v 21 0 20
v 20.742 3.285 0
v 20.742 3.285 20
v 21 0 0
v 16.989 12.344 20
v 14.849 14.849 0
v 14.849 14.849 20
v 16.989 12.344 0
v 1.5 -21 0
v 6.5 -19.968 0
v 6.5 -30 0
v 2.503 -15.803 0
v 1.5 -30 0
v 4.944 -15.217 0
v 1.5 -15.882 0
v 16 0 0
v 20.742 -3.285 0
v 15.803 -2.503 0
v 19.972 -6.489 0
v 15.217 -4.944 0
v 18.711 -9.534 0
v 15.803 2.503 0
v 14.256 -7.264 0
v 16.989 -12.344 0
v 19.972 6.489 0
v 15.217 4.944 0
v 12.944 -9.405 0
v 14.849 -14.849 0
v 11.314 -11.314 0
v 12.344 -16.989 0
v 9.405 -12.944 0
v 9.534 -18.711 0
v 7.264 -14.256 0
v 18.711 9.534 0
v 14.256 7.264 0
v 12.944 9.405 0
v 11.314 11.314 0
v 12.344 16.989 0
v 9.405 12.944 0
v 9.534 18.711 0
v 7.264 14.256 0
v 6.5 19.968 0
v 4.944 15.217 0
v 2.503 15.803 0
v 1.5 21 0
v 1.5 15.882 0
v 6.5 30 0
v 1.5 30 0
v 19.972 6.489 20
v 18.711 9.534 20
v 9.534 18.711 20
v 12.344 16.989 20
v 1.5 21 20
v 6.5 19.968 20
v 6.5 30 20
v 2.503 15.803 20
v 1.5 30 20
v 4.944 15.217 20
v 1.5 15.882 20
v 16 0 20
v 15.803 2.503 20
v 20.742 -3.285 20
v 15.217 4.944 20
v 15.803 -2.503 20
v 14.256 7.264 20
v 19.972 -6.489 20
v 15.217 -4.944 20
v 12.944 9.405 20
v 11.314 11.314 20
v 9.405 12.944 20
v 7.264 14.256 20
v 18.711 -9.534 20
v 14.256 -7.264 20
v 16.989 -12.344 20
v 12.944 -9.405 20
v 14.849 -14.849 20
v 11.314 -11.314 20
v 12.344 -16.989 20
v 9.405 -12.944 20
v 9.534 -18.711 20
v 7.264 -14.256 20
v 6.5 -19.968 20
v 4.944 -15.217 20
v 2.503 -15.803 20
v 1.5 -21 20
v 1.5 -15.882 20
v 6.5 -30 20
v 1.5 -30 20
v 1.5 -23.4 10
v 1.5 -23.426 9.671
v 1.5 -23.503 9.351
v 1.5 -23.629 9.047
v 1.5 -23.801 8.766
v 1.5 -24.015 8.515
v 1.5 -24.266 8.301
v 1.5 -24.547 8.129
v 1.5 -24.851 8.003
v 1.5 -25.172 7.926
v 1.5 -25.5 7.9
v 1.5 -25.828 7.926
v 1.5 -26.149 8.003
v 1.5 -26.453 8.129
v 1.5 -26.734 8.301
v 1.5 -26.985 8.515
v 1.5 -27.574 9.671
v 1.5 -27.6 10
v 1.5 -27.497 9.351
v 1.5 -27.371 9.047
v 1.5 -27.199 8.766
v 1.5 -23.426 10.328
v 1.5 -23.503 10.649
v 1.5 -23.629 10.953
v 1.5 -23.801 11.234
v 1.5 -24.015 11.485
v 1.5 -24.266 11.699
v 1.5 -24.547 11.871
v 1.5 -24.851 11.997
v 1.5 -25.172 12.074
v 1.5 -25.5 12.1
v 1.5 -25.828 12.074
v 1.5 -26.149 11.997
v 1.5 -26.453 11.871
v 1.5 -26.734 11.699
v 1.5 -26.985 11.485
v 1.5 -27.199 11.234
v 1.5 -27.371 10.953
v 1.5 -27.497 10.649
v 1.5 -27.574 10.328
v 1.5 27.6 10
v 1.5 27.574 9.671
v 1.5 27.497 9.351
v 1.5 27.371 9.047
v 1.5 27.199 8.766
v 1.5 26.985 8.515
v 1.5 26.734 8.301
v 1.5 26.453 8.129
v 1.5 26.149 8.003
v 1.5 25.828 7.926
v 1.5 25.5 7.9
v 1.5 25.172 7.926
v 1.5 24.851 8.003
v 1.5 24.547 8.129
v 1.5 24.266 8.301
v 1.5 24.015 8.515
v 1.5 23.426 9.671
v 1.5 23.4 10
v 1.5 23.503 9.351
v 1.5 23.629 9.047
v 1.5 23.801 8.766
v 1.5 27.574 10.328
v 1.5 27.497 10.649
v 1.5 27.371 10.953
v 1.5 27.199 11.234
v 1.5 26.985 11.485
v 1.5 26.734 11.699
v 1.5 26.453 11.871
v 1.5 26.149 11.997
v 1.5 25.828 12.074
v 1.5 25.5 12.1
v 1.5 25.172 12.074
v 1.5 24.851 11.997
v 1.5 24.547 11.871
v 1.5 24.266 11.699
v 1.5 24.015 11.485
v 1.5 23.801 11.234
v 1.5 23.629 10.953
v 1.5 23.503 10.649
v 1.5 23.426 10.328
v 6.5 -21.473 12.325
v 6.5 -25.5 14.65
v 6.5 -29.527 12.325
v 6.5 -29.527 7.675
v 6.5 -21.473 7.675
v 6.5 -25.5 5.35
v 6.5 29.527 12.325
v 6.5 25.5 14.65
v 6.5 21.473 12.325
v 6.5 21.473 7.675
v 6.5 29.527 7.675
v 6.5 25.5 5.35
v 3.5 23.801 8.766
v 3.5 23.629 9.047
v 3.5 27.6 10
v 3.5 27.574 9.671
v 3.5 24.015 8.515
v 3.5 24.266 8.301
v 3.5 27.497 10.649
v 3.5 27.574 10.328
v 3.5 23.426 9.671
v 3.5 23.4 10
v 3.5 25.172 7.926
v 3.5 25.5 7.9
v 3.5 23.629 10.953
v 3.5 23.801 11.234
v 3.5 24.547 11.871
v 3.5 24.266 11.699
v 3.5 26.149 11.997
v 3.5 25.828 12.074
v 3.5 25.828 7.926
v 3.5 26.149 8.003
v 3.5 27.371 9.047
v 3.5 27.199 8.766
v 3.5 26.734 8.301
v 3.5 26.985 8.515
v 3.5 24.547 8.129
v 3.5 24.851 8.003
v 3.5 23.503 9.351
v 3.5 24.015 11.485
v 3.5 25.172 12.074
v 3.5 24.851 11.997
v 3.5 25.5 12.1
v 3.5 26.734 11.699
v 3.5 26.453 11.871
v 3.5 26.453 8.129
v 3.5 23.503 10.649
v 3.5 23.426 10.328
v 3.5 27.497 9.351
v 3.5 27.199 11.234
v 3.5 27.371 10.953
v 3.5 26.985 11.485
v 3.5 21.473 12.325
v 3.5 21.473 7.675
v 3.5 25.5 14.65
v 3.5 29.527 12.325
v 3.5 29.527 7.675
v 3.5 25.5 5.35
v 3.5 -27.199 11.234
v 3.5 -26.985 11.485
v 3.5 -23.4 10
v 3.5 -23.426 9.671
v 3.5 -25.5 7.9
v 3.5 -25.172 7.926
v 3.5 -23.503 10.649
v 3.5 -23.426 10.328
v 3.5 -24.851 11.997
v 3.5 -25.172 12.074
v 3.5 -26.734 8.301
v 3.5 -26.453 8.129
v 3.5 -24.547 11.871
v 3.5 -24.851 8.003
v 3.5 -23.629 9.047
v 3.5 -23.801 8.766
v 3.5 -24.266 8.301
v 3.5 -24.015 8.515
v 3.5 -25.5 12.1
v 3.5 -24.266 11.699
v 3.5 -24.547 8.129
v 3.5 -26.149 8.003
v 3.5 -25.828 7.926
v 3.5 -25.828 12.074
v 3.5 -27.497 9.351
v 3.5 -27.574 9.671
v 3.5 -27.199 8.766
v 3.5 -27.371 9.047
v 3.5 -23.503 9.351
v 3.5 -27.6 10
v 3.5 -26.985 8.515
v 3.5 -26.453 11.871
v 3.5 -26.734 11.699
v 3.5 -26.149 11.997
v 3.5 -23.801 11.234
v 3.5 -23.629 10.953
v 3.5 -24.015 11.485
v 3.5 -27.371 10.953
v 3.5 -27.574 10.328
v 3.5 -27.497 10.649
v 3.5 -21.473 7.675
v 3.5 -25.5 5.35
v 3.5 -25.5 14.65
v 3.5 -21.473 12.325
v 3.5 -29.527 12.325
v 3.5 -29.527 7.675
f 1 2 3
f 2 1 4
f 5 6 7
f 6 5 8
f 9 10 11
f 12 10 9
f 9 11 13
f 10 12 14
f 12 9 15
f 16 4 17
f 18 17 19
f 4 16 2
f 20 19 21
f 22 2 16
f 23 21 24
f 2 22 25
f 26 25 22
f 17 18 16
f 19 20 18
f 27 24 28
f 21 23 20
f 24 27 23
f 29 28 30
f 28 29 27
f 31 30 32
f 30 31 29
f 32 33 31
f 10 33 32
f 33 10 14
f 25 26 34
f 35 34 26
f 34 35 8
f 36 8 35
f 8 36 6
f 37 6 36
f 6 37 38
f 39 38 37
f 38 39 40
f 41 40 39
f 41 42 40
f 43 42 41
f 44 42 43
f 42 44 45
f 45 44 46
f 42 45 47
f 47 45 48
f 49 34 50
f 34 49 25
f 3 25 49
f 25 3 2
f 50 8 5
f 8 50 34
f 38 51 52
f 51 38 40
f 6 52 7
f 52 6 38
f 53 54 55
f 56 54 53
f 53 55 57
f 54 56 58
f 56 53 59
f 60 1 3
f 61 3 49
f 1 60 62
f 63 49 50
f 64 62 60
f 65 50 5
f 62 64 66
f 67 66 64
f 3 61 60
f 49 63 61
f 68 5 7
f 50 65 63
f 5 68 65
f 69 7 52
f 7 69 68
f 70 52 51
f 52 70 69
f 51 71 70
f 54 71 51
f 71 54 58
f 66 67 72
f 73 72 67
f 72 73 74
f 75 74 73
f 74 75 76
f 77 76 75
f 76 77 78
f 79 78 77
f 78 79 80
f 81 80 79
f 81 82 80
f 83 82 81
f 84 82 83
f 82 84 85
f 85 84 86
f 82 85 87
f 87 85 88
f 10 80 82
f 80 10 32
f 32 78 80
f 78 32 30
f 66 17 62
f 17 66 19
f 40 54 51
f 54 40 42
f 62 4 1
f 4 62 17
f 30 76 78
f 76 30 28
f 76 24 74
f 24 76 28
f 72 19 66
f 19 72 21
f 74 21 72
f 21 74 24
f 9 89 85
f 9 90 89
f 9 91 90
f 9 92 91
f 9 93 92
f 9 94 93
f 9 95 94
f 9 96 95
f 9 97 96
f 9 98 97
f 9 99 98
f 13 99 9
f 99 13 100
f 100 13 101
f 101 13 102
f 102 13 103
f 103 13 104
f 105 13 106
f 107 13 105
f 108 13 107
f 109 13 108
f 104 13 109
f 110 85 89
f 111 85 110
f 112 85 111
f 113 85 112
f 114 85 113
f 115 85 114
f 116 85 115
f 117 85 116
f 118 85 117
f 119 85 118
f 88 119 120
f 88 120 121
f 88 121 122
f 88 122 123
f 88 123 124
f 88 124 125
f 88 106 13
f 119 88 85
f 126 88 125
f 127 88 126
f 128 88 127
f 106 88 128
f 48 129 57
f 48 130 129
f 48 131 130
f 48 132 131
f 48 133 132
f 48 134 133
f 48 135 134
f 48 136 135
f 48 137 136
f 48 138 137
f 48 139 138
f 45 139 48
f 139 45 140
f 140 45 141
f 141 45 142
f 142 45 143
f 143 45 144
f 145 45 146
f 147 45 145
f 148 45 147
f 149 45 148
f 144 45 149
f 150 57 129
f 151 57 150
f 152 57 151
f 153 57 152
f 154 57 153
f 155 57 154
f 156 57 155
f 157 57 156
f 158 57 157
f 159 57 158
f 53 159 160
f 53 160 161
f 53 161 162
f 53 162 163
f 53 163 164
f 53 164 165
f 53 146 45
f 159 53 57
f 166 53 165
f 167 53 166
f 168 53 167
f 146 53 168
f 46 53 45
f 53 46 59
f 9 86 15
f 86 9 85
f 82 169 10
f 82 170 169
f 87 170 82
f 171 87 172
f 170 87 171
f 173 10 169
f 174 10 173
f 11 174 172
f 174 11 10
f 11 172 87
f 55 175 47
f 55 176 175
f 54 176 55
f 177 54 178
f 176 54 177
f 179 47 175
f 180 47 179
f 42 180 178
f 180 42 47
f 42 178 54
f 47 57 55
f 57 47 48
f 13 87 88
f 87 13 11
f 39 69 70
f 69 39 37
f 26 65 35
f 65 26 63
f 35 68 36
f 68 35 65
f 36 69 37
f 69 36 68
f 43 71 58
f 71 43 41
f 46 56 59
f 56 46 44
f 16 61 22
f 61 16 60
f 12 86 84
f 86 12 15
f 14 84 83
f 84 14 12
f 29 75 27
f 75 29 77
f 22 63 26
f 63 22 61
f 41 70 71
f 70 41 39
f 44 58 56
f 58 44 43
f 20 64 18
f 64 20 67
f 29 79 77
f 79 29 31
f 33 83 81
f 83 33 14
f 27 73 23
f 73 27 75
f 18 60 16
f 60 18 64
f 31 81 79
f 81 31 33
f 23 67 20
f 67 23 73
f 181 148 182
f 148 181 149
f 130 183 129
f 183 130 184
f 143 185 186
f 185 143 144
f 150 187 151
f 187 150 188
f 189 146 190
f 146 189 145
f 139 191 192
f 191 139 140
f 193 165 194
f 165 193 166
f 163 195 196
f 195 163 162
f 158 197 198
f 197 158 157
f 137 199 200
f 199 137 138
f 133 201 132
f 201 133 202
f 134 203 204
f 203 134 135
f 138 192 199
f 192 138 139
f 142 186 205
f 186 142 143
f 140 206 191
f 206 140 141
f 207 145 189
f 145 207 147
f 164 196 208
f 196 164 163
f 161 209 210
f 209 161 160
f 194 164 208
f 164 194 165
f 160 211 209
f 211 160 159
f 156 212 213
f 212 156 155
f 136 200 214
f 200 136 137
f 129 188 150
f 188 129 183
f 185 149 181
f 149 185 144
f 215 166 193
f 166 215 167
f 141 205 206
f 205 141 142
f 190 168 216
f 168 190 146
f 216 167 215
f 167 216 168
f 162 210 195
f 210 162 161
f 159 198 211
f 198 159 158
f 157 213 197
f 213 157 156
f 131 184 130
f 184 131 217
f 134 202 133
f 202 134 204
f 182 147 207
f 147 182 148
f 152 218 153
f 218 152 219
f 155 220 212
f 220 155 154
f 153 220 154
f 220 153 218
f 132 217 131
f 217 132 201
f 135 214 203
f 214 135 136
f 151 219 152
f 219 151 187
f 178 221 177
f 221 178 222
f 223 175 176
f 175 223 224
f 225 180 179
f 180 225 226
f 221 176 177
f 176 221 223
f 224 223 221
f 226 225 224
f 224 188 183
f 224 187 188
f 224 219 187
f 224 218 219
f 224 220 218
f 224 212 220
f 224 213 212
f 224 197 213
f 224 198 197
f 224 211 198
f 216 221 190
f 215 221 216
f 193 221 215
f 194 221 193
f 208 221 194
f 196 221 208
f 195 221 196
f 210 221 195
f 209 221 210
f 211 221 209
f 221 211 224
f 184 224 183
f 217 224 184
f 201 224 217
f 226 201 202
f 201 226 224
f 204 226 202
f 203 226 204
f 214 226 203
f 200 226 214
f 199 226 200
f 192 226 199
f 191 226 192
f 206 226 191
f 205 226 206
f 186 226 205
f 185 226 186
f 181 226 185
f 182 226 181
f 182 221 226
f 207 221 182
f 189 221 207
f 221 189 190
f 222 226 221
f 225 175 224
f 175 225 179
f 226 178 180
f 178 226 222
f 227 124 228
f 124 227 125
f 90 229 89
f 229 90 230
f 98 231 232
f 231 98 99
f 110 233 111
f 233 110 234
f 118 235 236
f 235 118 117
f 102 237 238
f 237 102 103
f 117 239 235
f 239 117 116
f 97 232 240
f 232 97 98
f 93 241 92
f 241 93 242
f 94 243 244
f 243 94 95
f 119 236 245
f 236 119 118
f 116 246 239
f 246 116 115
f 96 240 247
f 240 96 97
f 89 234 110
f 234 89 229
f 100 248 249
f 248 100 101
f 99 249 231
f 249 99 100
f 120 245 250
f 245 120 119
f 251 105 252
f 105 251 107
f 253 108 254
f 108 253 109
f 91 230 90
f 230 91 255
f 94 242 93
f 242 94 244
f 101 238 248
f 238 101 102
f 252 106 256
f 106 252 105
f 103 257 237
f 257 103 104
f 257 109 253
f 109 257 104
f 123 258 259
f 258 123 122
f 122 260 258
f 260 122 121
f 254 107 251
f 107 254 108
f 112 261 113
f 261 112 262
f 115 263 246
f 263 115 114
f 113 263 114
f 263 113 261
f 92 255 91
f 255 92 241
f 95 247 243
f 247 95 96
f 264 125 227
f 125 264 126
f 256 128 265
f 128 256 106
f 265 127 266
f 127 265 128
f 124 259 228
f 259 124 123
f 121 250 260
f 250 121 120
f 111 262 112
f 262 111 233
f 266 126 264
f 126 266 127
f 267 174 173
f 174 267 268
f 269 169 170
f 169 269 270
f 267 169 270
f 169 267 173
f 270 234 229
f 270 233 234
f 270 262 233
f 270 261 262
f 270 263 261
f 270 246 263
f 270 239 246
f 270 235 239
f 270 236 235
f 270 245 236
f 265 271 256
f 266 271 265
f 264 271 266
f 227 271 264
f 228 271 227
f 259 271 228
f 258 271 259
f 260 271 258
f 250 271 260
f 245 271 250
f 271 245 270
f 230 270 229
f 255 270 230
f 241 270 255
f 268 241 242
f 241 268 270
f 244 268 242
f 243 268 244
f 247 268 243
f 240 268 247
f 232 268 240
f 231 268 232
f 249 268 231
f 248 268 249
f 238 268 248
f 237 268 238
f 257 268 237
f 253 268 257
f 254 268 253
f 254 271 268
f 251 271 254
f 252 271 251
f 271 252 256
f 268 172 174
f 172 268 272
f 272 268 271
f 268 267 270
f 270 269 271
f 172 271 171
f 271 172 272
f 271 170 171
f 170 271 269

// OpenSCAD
// file: ../SRC/BOXHOLDER01A_D02.scad
$fn=40; // model faces resolution.
include <../configuration.scad>


//Drzak na sloup - cast bez drzaku anemometru
module BOXHOLDER01A_D02(){
	
difference()
    {
    union()
        {
        //základní válec
        cylinder(h=D02_vyska_uchytky,r=(D02_prumer_obruby+2*D02_sila_materialu)/2,center=true);
		//úchytové plošky		
        translate([D02_dotahova_vzdalenost+D02_sila_materialu/2,0,0]){cube([D02_sila_materialu,D02_delka_celeho_uchytu,D02_vyska_uchytky],center=true);}
		}
    
    //válec na odečet
    cylinder(h=D02_vyska_uchytky+0.01,r=D02_prumer_obruby/2,center=true);     
	        
    //kvádr na odecet
	translate([D02_dotahova_vzdalenost-(D02_prumer_obruby+2*D02_sila_materialu)/2,0,0]){cube([D02_prumer_obruby+2*D02_sila_materialu,D02_prumer_obruby+2*D02_sila_materialu,D02_vyska_uchytky+0.01],center=true);}
		
	//otvory na sroub
	translate([D02_dotahova_vzdalenost,(D02_delka_celeho_uchytu/2-D02_prumer_obruby/2-D02_sila_materialu)/2+D02_prumer_obruby/2+D02_sila_materialu,0]){rotate([0,90,0]){cylinder(h=D02_sila_materialu+0.01,r=D02_prumer_uchytneho_sroubu/2);}}
    
     //drzak matky
    translate([D02_dotahova_vzdalenost+D02_sila_materialu-D02_vyska_matky,(D02_delka_celeho_uchytu/2-D02_prumer_obruby/2-D02_sila_materialu)/2+D02_prumer_obruby/2+D02_sila_materialu,0]){rotate([0,90,0]){ cylinder (h = D02_vyska_matky+0.01, r= (D02_sirka_matky+0.2)/2, $fn=6);}}
   
     
        
    
        
	translate([D02_dotahova_vzdalenost,-((D02_delka_celeho_uchytu/2-D02_prumer_obruby/2-D02_sila_materialu)/2+D02_prumer_obruby/2+D02_sila_materialu),0]){rotate([0,90,0]){cylinder(h=D02_sila_materialu+0.01,r=D02_prumer_uchytneho_sroubu/2);}}
    
     //drzak matky
    translate([D02_dotahova_vzdalenost+D02_sila_materialu-D02_vyska_matky,-((D02_delka_celeho_uchytu/2-D02_prumer_obruby/2-D02_sila_materialu)/2+D02_prumer_obruby/2+D02_sila_materialu),0]){rotate([0,90,0]){ cylinder (h = D02_vyska_matky+0.01, r= (D02_sirka_matky+0.2)/2, $fn=6);}}

    
	
    }
}

module BOXHOLDER01A_D02_2(){
	
difference()
    {
    union()
        {
        //základní válec
        cylinder(h=D02_vyska_uchytky,r=(D02_prumer_obruby+2*D02_sila_materialu)/2,center=true);
		//úchytové plošky		
        translate([D02_dotahova_vzdalenost+D02_sila_materialu/2,0,0]){cube([D02_sila_materialu,D02_delka_celeho_uchytu,D02_vyska_uchytky],center=true);}
		}
    
    //válec na odečet
    cylinder(h=D02_vyska_uchytky+0.01,r=D02_prumer_obruby/2,center=true);     
	        
    //kvádr na odecet
	translate([D02_dotahova_vzdalenost-(D02_prumer_obruby+2*D02_sila_materialu)/2,0,0]){cube([D02_prumer_obruby+2*D02_sila_materialu,D02_prumer_obruby+2*D02_sila_materialu,D02_vyska_uchytky+0.01],center=true);}
		
	//otvory na sroub
	translate([D02_dotahova_vzdalenost,(D02_delka_celeho_uchytu/2-D02_prumer_obruby/2-D02_sila_materialu)/2+D02_prumer_obruby/2+D02_sila_materialu,0]){rotate([0,90,0]){cylinder(h=D02_sila_materialu+0.01,r=D02_prumer_uchytneho_sroubu/2);}}
    
    
   
     
        
   
    
     
        
	translate([D02_dotahova_vzdalenost,-((D02_delka_celeho_uchytu/2-D02_prumer_obruby/2-D02_sila_materialu)/2+D02_prumer_obruby/2+D02_sila_materialu),0]){rotate([0,90,0]){cylinder(h=D02_sila_materialu+0.01,r=D02_prumer_uchytneho_sroubu/2);}}
    
    

    
    
	
    }
}


//ISLHOLDER01A_D02();
// file: ../configuration.scad
$fn=40; // model faces resolution.

//Parametry pro D01 a D02
//nastavení držáku na sloup
//----------------------------------------------------------------
//----------------------------------------------------------------
//není potřeba měnit
S01_prumer_vnitrni=40;
S01_tolerance_zavit=1.5;

S01_sila_materialu=1.3; //sila výtuhy

//D01 - uchyt velky
D01_material_pod_zavitem=5;
D01_material_za_zavitem=3;
D01_material_pred_zavitem=2;
D01_delka_tyce=30;
D01_sirka_tyce=15;



//D02 - uchyt na sloup
D02_sila_materialu=5;
D02_vyska_uchytky=20;
D02_prumer_obruby=32; 
//27mm - 3/4 trubka
D02_delka_celeho_uchytu=60;
D02_dotahova_vzdalenost=1.5;
D02_prumer_uchytneho_sroubu=4.2;
D02_sirka_matky=9.1; //pro M4
D02_vyska_matky=3;
// main file
$fn=100; // model faces resolution.
include <../configuration.scad>
use <../SRC/BOXHOLDER01A_D02.scad>

rotate([0, 0, 0])
    translate([0,0,D02_vyska_uchytky/2])
        BOXHOLDER01A_D02();

            
